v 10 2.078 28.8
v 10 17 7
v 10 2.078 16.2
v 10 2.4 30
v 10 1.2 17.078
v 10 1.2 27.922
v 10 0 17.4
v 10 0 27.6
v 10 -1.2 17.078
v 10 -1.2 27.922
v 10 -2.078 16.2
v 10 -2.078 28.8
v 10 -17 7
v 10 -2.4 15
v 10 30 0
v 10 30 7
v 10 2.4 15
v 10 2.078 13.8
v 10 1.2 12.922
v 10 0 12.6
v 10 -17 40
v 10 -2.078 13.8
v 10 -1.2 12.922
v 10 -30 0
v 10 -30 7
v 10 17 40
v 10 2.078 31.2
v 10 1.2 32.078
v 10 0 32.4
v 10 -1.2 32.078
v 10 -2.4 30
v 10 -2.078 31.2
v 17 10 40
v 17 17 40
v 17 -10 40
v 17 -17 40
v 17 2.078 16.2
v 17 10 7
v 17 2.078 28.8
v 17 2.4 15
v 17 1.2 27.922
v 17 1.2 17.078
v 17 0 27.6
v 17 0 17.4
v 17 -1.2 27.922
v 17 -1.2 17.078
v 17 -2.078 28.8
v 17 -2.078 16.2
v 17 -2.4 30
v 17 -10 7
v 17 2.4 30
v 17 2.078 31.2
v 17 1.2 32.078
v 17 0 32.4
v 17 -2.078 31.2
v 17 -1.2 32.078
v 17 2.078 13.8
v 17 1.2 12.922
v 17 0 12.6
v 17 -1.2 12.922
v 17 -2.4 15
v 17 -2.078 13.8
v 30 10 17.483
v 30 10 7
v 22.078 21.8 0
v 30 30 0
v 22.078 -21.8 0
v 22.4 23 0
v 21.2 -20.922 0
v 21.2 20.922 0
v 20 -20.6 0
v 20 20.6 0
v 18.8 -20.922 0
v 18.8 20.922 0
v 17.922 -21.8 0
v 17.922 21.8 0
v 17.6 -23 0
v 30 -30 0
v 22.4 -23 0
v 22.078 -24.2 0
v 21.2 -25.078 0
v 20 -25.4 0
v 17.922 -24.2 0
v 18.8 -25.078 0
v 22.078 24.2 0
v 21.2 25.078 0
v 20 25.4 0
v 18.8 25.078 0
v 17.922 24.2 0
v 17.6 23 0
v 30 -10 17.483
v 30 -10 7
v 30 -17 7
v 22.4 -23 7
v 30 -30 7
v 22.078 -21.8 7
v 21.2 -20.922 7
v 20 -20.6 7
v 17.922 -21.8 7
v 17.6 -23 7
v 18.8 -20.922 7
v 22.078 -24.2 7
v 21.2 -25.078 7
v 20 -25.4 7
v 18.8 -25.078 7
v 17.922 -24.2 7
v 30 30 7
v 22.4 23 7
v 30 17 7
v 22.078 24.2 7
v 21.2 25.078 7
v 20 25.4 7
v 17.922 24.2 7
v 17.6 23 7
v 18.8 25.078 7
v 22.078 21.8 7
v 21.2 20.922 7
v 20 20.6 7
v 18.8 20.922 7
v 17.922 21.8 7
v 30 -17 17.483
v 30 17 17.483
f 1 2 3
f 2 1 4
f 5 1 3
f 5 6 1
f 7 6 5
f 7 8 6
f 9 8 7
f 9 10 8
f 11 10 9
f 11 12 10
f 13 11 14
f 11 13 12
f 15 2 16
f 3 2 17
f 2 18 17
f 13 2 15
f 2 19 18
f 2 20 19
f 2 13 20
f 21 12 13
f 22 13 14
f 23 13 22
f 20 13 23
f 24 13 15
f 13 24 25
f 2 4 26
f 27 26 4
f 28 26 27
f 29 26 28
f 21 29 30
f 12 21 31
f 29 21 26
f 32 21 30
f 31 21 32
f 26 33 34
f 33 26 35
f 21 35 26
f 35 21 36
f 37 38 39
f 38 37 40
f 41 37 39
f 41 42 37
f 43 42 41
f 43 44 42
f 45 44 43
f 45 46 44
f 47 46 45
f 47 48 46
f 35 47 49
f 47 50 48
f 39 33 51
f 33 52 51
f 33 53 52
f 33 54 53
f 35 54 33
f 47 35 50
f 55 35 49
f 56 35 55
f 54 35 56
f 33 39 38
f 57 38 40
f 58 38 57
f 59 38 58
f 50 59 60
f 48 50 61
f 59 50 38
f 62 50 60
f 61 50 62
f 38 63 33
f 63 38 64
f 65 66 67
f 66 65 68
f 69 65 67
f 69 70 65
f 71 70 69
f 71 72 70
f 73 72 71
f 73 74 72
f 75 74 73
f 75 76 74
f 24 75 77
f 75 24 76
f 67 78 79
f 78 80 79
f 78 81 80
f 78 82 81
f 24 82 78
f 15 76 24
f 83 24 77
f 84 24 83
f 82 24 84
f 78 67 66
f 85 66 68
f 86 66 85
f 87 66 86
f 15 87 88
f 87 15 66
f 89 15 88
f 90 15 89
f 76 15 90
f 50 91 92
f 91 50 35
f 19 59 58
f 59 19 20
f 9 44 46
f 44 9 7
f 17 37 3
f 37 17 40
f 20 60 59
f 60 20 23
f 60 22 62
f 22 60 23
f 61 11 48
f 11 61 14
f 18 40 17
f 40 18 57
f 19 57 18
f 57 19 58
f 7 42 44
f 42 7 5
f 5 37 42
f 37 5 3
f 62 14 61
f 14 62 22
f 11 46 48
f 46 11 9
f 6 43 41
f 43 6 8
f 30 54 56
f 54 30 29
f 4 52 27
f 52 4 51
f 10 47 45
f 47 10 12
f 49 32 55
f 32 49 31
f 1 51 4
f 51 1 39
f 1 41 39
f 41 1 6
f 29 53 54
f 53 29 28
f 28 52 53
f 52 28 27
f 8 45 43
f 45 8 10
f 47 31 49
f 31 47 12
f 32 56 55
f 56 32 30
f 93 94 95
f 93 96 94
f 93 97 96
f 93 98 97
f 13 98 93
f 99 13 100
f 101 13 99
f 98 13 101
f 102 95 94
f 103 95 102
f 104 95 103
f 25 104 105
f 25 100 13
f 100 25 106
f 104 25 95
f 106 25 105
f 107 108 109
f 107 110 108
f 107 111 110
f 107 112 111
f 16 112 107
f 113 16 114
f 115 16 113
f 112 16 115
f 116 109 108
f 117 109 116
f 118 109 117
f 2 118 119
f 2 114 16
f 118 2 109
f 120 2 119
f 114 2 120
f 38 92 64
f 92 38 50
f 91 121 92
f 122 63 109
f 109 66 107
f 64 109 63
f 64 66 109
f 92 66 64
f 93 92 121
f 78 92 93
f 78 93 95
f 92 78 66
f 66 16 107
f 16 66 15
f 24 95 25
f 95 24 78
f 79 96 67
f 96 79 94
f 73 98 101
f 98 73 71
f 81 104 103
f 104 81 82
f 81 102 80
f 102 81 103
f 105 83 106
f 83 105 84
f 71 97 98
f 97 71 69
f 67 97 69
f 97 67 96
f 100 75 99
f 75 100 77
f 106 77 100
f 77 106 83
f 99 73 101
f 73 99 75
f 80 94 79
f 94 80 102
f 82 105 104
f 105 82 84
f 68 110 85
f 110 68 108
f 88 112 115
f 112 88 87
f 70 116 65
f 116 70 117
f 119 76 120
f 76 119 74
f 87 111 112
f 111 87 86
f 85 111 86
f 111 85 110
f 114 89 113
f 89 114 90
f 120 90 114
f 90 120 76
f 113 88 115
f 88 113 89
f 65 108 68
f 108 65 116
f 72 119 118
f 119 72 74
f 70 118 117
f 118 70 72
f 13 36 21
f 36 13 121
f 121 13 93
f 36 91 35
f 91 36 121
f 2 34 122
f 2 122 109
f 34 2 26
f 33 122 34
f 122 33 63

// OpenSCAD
// file: aluminium_2020.scad
module profile2020( h=100 )
linear_extrude(h) {
    union() {
        // external corners
        difference() {
            square(20,center=true);
            square(16,center=true);
            for( angle=[0, 90, 180, 270] )
                rotate( [0,0,angle] )
                    translate( [10,0,0] )
                        square([8,5],center=true);
        }
        // middle part, with a hole
        difference() {
            square( 7, center=true );
            circle( d=3.8, center=true, $fn=10 );
        }
        // diagonal parts
        for( angle = [0,90,180,270] )
        rotate( [0,0,45+angle] )
            translate([7.5,0,0])
                square( [8,2], center=true );
    }
}

profile2020(20);
// main file
use <aluminium_2020.scad>;

width = 7;

//translate([0,0,0]) profile2020( 60 );
//translate([20,-40,-10]) rotate([-90,0,0]) profile2020( 80 );

translate( [10,-10,0] )
    difference() {
        cube([width,20,40]);
        translate([-1,10,15]) rotate( [0,90,0] ) cylinder(r=2.4,h=20,$fn=12);
        translate([-1,10,30]) rotate( [0,90,0] ) cylinder(r=2.4,h=20,$fn=12);
}
translate( [10,-30,0] ) 
    difference() {
    cube([20,60,width]);
    translate([10,7,-1]) cylinder(r=2.4,h=20,$fn=12);
    translate([10,60-7,-1]) cylinder(r=2.4,h=20,$fn=12);
}

translate( [10,-10-width,0] )
    difference() {
        cube([20,width,40]);
        translate([7,-1,40]) rotate([0,60,0]) cube([40,10,20]);
}

translate( [10,10,0] )
    difference() {
        cube([20,width,40]);
        translate([7,-1,40]) rotate([0,60,0]) cube([40,10,20]);
}

//translate([20,0,-7]) rotate([0,0,90]) translate( [10,10,0] )
//    difference() {
//        cube([20,width,40]);
//        translate([7,-1,40]) rotate([0,60,0]) cube([40,10,20]);
//}
//
//mirror([0,1,0]) translate([20,0,-7]) rotate([0,0,90]) translate( [10,10,0] )
//    difference() {
//        cube([20,width,40]);
//        translate([7,-1,40]) rotate([0,60,0]) cube([40,10,20]);
//}

//translate( [30,-30,-7] ) cube([7,60,14]);
